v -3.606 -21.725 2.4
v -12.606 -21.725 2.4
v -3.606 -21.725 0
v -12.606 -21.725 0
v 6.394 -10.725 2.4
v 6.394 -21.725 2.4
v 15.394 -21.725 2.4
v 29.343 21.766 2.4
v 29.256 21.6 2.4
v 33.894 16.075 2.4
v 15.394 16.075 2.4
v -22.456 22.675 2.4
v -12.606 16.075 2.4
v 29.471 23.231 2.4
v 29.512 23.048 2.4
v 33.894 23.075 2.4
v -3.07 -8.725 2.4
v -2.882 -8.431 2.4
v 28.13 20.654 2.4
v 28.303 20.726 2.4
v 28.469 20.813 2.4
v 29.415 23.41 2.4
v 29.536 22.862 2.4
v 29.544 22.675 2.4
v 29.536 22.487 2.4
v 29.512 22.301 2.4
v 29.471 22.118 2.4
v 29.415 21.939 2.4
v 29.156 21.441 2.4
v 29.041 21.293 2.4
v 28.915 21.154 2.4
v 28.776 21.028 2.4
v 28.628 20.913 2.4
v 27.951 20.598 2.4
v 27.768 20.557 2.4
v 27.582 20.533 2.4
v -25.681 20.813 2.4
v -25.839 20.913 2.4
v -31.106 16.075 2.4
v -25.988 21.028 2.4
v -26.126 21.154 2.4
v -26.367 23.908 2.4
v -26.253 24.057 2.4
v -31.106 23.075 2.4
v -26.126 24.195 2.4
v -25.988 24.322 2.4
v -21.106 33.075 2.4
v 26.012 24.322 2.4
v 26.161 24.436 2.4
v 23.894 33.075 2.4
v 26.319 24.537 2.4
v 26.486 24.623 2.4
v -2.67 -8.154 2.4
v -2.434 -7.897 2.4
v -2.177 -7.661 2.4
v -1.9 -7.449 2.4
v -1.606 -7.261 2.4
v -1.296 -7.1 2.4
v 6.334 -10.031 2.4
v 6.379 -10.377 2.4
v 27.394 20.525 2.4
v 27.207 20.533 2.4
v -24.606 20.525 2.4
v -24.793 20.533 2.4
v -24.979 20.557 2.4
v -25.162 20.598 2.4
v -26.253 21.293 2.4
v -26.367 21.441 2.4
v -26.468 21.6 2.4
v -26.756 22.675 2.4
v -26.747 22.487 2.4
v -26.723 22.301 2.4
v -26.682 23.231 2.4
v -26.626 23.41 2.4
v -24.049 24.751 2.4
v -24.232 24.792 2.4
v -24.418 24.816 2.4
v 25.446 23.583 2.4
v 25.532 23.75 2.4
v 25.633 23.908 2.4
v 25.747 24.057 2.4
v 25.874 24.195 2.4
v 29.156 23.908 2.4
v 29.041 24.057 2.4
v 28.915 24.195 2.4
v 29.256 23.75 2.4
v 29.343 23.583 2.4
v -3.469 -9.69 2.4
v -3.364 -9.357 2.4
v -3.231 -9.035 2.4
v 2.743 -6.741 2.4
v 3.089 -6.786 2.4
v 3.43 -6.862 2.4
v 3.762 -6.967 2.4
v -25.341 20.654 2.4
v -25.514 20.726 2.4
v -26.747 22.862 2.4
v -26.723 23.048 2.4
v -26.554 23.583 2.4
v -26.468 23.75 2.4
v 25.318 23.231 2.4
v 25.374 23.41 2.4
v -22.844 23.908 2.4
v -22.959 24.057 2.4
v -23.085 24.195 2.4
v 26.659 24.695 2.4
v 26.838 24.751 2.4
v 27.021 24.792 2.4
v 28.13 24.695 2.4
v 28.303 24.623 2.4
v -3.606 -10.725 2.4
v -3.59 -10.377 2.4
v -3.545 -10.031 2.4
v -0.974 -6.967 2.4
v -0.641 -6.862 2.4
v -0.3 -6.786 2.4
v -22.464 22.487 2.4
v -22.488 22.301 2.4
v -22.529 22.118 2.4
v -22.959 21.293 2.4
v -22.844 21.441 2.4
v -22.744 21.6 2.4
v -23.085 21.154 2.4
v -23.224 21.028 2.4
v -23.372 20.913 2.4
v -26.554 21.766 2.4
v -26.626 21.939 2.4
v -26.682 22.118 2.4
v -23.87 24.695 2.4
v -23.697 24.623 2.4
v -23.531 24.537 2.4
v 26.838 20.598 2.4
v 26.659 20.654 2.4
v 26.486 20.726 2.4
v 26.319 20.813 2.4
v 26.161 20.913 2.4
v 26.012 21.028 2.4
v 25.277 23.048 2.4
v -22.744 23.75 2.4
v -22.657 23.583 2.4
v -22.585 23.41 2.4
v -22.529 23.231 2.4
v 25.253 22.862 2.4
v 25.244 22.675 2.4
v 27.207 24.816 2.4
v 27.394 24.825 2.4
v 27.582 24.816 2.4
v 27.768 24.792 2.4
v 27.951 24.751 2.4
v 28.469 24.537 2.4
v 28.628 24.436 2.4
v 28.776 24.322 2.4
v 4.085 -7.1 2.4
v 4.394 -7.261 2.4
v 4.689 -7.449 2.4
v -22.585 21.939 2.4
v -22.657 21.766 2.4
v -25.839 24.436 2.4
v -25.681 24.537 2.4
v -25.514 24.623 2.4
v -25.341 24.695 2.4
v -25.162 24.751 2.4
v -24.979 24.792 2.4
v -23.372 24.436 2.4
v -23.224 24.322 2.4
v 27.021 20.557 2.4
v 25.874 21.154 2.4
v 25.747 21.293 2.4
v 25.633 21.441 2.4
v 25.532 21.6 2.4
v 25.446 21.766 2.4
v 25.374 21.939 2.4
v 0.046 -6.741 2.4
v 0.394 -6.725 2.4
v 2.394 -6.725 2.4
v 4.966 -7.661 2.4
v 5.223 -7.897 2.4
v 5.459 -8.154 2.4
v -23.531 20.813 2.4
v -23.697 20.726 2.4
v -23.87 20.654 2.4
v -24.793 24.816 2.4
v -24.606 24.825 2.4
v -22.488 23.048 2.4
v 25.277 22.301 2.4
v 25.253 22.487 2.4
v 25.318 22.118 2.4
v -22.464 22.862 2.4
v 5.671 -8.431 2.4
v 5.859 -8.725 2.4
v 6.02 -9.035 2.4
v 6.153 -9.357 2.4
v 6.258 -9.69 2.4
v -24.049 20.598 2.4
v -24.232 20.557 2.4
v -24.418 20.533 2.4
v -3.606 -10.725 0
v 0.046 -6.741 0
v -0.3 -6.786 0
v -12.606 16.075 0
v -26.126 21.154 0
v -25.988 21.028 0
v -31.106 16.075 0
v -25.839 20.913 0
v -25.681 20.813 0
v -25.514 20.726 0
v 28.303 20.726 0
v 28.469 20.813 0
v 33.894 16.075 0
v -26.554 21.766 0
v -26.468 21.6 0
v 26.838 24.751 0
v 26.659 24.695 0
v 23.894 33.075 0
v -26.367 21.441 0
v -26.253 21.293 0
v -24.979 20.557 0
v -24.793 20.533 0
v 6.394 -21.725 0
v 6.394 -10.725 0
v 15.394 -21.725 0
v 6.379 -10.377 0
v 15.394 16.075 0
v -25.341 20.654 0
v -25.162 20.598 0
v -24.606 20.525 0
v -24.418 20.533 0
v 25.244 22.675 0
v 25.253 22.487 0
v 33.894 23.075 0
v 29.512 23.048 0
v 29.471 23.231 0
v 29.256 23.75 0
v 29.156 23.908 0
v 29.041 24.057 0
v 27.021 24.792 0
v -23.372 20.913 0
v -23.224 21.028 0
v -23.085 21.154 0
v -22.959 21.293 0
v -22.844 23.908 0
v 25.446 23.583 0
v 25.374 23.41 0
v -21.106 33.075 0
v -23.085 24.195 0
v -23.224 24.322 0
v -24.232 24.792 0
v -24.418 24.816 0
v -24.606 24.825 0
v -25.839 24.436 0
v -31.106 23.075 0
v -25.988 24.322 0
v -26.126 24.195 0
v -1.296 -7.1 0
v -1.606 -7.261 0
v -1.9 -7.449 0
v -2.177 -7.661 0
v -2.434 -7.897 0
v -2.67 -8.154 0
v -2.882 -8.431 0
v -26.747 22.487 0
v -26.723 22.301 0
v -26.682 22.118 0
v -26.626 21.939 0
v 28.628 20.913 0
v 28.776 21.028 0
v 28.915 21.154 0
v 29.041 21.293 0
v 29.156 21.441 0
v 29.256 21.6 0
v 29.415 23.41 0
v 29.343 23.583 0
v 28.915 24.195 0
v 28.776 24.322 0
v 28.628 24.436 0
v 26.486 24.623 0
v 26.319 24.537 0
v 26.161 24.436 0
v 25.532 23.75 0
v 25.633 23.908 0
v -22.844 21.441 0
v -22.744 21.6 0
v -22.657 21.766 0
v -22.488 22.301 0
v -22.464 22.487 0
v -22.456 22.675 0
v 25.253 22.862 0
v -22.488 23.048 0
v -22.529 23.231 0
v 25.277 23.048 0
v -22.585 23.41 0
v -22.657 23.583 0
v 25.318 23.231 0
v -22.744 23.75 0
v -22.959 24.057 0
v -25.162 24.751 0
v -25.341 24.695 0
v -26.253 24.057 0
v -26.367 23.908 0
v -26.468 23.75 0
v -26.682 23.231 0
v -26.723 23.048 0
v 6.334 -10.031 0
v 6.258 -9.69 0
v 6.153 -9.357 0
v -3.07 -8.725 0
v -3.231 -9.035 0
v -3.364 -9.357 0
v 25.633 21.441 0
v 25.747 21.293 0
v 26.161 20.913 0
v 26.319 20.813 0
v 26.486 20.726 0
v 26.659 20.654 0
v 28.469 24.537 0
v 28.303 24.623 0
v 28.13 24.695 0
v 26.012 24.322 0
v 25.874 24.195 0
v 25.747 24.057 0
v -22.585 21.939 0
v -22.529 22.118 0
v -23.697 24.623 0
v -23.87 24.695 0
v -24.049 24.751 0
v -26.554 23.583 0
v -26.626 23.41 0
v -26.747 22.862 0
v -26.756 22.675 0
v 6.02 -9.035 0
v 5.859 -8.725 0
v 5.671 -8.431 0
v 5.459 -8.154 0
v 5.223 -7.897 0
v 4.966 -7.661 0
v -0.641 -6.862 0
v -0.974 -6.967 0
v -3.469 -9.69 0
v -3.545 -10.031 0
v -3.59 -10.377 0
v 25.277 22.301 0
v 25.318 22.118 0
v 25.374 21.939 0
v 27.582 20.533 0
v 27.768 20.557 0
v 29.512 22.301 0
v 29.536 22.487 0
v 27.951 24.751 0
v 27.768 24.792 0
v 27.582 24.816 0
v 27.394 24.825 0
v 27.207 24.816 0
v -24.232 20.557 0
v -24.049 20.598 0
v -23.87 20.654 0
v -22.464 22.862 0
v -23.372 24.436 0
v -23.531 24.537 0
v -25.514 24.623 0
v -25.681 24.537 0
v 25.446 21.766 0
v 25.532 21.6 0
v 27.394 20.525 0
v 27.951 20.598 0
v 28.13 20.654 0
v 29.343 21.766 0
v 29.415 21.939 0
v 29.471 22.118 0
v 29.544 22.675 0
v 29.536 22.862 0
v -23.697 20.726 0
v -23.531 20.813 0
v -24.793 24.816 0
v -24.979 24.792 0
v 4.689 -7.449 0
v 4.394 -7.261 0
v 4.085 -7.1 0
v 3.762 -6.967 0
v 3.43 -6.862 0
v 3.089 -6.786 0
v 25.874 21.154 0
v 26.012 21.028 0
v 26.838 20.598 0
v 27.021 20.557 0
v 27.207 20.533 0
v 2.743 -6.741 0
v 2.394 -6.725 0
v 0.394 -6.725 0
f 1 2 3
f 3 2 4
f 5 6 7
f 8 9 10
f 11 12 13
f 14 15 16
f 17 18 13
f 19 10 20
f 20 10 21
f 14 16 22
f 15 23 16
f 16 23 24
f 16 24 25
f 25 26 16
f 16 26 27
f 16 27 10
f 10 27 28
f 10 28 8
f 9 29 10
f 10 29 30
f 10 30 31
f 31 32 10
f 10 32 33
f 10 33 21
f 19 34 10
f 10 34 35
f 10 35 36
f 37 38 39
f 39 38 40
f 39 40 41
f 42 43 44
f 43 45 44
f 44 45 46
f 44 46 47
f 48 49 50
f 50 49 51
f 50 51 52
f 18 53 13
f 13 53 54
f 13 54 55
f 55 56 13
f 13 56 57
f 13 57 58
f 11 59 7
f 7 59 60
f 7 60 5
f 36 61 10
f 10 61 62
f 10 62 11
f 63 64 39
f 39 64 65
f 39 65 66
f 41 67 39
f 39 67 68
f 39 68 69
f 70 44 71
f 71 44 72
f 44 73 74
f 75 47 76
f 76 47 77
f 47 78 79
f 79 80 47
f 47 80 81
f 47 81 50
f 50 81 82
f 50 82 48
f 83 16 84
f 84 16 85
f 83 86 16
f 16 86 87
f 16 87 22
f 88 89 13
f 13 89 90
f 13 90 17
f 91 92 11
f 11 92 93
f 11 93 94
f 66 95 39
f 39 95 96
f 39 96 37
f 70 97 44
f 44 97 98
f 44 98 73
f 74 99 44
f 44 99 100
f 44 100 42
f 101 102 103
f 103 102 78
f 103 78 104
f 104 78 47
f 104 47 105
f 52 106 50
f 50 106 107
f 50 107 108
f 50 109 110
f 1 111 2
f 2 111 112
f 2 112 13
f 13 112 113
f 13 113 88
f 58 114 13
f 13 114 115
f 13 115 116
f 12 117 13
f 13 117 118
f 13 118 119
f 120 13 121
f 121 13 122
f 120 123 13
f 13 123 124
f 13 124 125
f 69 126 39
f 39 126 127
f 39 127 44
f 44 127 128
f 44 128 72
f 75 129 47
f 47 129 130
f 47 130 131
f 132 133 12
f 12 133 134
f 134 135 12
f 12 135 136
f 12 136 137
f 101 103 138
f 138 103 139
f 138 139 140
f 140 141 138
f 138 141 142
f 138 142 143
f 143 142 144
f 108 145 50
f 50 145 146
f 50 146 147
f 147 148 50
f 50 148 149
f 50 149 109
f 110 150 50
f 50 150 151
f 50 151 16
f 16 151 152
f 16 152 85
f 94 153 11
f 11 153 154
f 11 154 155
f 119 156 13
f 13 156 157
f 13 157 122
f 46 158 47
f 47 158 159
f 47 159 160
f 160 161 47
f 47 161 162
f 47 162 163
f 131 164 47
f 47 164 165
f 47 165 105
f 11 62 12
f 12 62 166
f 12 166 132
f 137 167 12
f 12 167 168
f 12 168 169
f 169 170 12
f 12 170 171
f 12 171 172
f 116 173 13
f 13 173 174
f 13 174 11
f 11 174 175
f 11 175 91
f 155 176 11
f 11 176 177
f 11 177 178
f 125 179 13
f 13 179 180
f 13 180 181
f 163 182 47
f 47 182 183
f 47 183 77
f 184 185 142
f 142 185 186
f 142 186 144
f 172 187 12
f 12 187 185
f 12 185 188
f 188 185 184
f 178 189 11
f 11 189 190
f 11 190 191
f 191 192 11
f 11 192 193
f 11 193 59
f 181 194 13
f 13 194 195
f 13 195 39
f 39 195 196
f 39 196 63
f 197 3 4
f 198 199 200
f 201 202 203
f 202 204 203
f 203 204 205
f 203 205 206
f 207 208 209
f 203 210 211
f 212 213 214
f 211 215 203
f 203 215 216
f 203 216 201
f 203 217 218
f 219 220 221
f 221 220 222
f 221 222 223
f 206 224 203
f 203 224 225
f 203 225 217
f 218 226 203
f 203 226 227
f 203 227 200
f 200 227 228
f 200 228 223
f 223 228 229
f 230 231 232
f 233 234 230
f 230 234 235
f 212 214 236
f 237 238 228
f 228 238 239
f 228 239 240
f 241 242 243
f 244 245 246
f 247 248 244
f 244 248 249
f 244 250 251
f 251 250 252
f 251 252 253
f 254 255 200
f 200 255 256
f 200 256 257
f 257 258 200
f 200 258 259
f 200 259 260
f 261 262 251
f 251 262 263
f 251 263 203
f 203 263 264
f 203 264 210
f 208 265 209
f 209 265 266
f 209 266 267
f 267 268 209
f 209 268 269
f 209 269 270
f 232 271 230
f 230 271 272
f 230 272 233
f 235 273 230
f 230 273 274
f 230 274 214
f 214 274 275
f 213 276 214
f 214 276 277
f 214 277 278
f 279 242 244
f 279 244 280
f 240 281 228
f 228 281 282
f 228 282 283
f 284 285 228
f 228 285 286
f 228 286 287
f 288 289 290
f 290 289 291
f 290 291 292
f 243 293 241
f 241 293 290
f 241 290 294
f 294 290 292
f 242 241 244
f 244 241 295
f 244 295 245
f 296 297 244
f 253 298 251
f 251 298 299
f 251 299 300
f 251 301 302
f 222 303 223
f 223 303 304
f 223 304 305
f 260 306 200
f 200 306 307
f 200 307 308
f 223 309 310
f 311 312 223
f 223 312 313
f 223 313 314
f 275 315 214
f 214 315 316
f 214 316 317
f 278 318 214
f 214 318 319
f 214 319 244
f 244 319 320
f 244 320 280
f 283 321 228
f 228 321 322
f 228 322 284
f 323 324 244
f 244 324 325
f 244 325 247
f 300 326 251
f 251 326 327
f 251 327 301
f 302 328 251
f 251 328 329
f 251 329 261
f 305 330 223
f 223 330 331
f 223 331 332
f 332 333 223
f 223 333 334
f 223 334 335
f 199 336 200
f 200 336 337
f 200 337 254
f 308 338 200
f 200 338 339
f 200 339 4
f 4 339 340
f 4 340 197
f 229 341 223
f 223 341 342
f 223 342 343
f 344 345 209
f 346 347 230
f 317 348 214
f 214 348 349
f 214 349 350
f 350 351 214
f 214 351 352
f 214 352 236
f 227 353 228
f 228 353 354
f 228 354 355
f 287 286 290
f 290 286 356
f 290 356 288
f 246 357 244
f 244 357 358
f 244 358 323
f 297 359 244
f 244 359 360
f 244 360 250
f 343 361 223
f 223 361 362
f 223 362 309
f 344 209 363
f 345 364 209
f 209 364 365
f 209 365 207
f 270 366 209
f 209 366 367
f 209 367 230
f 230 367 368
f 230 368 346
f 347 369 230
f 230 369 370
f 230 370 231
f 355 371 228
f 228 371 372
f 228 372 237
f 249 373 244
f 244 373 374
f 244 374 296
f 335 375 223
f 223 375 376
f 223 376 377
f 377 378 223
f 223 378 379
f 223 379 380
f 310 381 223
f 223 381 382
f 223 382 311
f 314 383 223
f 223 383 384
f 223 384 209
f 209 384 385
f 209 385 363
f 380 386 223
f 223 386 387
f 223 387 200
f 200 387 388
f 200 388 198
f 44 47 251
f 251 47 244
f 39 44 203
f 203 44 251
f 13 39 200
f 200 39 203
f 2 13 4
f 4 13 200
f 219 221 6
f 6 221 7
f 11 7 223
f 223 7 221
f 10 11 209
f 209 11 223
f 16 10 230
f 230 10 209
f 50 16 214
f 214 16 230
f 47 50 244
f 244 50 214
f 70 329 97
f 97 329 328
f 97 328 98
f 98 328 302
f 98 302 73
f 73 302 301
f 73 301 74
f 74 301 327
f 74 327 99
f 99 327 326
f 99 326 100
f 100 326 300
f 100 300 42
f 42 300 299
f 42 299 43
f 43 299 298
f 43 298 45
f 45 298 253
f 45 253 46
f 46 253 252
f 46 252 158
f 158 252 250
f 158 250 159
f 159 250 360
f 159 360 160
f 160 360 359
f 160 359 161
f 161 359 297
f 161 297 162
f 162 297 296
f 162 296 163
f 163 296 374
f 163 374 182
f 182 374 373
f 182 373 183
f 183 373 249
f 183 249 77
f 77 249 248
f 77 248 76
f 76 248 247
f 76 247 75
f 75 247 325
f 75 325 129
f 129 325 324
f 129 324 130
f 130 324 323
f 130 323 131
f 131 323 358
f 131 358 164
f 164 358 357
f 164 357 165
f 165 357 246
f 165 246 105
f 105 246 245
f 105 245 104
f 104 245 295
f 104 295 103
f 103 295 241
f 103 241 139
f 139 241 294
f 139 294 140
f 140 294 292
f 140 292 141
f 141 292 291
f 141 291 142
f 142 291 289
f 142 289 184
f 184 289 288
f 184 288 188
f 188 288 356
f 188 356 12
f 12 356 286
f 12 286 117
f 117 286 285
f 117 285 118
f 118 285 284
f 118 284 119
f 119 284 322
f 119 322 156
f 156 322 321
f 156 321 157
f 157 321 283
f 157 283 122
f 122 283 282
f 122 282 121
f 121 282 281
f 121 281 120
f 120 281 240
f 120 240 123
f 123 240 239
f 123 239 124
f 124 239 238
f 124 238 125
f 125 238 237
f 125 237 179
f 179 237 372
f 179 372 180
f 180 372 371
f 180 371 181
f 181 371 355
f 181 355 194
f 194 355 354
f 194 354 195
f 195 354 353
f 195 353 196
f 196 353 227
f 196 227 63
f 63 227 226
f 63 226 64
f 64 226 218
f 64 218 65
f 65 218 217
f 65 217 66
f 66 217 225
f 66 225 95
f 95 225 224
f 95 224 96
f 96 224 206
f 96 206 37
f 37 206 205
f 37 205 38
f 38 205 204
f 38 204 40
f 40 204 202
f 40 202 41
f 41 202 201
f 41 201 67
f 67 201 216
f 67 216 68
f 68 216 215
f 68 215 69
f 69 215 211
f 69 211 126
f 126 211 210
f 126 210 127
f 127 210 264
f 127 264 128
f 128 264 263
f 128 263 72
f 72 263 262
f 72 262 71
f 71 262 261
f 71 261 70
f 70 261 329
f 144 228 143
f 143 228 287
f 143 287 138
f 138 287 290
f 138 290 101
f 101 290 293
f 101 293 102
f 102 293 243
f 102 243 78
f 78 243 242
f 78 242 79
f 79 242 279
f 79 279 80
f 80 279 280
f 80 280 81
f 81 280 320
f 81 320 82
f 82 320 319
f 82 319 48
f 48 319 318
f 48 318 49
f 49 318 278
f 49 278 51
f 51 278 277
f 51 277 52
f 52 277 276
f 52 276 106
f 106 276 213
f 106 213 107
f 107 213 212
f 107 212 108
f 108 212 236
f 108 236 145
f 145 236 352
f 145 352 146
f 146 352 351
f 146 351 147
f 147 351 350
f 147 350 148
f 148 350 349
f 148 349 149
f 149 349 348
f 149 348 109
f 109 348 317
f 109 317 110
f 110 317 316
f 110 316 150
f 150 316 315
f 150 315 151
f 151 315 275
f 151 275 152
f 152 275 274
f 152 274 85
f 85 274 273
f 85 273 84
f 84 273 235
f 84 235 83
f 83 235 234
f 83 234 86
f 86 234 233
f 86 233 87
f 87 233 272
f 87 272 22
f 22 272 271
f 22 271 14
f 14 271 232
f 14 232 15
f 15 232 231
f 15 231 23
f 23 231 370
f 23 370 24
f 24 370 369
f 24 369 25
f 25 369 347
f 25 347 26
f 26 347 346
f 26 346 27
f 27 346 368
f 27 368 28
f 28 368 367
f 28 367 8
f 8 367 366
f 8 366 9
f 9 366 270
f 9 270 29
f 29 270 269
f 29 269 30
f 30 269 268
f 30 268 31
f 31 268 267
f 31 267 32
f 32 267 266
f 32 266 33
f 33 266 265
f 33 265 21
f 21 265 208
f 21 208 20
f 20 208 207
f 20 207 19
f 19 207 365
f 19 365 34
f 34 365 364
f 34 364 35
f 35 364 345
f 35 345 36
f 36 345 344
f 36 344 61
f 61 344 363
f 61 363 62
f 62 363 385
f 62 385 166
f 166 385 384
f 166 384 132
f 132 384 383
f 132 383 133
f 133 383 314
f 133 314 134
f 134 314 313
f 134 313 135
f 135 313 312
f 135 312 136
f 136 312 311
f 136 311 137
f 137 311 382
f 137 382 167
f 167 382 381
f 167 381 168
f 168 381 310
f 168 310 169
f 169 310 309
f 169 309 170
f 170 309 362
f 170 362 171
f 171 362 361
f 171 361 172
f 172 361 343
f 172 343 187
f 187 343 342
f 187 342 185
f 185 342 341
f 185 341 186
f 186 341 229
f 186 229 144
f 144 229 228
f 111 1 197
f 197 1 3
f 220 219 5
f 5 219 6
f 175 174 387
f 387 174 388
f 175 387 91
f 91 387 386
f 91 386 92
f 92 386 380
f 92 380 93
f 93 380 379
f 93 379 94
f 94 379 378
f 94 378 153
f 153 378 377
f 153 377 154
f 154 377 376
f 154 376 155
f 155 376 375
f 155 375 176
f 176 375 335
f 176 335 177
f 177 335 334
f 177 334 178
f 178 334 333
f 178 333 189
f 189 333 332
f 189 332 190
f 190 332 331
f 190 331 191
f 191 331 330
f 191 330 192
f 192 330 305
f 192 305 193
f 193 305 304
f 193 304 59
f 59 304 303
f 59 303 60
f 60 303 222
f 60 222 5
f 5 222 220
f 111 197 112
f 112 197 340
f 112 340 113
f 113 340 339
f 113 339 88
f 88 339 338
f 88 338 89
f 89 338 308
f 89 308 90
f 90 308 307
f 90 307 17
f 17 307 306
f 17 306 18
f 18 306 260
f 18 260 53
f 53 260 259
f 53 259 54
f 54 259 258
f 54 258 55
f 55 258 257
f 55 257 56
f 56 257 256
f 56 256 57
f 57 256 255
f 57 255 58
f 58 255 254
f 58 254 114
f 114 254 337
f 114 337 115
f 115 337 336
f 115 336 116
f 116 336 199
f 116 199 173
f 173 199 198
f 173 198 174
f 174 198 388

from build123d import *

# Parameters (mm, degrees)
SKETCH1_R           = 2.15
BOSS_EXTRUDE1_DEPTH = 2.4
SKETCH2_W           = 10
SKETCH2_H           = 30
CUT_EXTRUDE1_DEPTH  = 3.4
FILLET1_R           = 4


with BuildPart() as part:
    # Sketch1 → Boss-Extrude1 (new body)
    with BuildSketch(Plane.XY):
        Polygon((-21.105584483, 33.074652619), (23.894415517, 33.074652619), (33.894415517, 23.074652619), (33.894415517, 16.074652619), (15.394415517, 16.074652619), (15.394415517, -21.725347381), (-12.605584483, -21.725347381), (-12.605584483, 16.074652619), (-31.105584483, 16.074652619), (-31.105584483, 23.074652619), align=None)
        with Locations((-24.605584483, 22.674652619)):
            Circle(SKETCH1_R, mode=Mode.SUBTRACT)
        with Locations((27.394415517, 22.674652619)):
            Circle(SKETCH1_R, mode=Mode.SUBTRACT)
    extrude(amount=BOSS_EXTRUDE1_DEPTH)

    # Sketch2 → Cut-Extrude1 (cut, through all)
    with BuildSketch(Plane.XY.offset(2.4)):
        with Locations((1.394415517, -21.725347381)):
            Rectangle(SKETCH2_W, SKETCH2_H)
    extrude(amount=-CUT_EXTRUDE1_DEPTH, mode=Mode.SUBTRACT)

    # Fillet1
    fillet1_edges = [part.edges().sort_by_distance(p)[0] for p in [
        (6.394415517, -6.725347381, 1.2),
        (-3.605584483, -6.725347381, 1.2),
    ]]
    fillet(fillet1_edges, radius=FILLET1_R)


solid = part.part
